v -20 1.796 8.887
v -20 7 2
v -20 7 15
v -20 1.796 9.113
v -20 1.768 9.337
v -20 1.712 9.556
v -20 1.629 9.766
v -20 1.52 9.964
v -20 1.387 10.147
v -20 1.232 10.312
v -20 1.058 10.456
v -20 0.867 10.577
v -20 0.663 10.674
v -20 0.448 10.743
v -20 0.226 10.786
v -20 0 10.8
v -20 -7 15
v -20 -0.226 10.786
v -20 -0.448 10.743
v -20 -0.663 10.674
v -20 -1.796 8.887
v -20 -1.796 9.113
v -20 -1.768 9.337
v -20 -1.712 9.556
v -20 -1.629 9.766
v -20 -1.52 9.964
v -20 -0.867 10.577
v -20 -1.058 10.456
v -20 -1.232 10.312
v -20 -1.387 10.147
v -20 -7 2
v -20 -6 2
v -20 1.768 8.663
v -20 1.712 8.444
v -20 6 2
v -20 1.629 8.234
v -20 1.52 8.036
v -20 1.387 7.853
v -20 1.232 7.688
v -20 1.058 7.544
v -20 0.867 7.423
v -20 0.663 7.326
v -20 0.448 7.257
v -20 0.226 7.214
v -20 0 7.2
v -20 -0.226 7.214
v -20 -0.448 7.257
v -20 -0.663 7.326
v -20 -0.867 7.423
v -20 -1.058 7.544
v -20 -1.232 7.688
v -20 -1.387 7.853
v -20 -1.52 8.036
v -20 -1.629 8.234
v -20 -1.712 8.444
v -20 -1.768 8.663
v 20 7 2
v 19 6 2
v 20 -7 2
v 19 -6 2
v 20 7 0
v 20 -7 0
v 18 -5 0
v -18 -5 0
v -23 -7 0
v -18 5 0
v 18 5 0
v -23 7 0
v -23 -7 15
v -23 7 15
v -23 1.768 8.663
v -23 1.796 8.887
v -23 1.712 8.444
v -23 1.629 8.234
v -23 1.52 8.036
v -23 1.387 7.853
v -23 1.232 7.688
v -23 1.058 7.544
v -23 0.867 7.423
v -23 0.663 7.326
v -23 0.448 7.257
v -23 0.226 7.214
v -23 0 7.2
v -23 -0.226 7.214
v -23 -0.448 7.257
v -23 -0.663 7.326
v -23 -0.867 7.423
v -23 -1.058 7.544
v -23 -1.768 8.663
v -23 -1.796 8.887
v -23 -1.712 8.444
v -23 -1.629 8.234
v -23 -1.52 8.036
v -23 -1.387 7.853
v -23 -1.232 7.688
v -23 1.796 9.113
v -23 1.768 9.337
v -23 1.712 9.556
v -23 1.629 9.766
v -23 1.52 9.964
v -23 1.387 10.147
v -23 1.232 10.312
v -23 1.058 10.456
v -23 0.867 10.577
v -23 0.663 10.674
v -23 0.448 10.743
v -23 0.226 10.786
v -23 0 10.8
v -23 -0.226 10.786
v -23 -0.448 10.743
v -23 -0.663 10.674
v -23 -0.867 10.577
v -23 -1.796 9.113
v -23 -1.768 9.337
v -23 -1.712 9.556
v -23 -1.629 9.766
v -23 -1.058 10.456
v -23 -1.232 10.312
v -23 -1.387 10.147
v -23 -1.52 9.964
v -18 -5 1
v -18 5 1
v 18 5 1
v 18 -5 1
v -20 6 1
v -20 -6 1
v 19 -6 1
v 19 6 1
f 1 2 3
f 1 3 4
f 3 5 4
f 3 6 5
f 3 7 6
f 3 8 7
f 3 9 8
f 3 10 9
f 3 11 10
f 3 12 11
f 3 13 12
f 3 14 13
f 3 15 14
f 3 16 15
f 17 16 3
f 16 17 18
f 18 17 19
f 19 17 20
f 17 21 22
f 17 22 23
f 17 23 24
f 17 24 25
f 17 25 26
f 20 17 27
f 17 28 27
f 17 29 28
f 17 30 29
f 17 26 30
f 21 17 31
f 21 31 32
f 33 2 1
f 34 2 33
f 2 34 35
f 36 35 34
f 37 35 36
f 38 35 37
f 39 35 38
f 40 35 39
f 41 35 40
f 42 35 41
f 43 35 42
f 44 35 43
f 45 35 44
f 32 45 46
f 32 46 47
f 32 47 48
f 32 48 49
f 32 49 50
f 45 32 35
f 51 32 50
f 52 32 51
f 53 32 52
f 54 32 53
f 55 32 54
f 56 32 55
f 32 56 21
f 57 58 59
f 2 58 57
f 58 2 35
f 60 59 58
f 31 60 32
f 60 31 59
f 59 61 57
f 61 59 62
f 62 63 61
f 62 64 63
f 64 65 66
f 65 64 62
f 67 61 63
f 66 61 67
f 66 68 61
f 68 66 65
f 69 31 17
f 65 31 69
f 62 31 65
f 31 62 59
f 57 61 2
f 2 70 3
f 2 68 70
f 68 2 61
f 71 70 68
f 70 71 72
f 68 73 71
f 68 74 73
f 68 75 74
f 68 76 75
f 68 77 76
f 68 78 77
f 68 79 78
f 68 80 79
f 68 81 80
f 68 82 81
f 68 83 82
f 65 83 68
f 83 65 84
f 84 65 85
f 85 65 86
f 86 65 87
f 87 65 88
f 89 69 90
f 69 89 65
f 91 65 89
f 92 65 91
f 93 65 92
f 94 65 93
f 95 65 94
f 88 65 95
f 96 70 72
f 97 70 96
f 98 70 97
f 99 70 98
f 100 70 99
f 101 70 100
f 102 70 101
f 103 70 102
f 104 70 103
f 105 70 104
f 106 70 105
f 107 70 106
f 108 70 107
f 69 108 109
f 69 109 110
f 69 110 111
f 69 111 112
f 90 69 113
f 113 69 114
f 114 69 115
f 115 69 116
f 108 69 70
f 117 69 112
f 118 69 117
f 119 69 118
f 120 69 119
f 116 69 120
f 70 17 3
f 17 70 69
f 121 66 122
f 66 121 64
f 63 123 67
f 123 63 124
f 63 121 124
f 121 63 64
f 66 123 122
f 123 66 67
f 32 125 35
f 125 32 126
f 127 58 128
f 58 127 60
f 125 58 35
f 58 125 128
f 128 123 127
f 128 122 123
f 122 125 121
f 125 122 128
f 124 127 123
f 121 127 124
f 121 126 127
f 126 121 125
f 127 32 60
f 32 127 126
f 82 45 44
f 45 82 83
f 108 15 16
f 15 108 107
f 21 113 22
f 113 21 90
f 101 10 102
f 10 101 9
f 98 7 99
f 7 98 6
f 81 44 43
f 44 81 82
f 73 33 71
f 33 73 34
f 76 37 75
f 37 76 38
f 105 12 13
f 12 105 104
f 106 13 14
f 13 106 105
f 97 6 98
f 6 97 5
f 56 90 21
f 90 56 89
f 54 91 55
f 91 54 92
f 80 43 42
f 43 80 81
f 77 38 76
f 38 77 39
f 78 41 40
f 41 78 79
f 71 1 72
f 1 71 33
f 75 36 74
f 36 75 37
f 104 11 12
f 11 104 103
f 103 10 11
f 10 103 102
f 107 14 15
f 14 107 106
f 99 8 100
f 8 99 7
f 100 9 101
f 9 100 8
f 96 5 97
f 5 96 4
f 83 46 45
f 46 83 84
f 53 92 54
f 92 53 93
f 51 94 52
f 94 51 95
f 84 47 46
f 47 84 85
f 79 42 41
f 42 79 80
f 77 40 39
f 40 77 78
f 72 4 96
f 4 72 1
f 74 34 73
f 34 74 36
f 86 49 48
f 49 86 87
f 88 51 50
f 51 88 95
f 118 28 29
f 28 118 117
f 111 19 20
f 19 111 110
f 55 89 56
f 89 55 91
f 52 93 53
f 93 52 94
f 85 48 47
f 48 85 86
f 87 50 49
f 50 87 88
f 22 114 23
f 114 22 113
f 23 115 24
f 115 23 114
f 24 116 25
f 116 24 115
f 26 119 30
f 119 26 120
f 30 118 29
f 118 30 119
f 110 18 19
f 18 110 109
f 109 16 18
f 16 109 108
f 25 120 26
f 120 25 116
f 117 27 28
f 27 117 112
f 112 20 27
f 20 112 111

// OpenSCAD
$fn = 50;


difference() {
	union() {
		translate(v = [-20.0000000000, -7.0000000000, 0]) {
			rotate(a = [0, 0, 0]) {
				cube(size = [40, 14, 2]);
			}
		}
		translate(v = [-23.0000000000, -7.0000000000, 0]) {
			rotate(a = [0, 0, 0]) {
				cube(size = [3, 14, 15]);
			}
		}
	}
	union() {
		translate(v = [-18.0000000000, -5.0000000000, 0]) {
			rotate(a = [0, 0, 0]) {
				cube(size = [36, 10, 2]);
			}
		}
		translate(v = [-20.0000000000, -6.0000000000, 1]) {
			rotate(a = [0, 0, 0]) {
				cube(size = [39, 12, 1]);
			}
		}
		#translate(v = [-30.0000000000, 0, 9]) {
			rotate(a = [0, 90, 0]) {
				cylinder(h = 20, r = 1.8000000000);
			}
		}
	}
}
